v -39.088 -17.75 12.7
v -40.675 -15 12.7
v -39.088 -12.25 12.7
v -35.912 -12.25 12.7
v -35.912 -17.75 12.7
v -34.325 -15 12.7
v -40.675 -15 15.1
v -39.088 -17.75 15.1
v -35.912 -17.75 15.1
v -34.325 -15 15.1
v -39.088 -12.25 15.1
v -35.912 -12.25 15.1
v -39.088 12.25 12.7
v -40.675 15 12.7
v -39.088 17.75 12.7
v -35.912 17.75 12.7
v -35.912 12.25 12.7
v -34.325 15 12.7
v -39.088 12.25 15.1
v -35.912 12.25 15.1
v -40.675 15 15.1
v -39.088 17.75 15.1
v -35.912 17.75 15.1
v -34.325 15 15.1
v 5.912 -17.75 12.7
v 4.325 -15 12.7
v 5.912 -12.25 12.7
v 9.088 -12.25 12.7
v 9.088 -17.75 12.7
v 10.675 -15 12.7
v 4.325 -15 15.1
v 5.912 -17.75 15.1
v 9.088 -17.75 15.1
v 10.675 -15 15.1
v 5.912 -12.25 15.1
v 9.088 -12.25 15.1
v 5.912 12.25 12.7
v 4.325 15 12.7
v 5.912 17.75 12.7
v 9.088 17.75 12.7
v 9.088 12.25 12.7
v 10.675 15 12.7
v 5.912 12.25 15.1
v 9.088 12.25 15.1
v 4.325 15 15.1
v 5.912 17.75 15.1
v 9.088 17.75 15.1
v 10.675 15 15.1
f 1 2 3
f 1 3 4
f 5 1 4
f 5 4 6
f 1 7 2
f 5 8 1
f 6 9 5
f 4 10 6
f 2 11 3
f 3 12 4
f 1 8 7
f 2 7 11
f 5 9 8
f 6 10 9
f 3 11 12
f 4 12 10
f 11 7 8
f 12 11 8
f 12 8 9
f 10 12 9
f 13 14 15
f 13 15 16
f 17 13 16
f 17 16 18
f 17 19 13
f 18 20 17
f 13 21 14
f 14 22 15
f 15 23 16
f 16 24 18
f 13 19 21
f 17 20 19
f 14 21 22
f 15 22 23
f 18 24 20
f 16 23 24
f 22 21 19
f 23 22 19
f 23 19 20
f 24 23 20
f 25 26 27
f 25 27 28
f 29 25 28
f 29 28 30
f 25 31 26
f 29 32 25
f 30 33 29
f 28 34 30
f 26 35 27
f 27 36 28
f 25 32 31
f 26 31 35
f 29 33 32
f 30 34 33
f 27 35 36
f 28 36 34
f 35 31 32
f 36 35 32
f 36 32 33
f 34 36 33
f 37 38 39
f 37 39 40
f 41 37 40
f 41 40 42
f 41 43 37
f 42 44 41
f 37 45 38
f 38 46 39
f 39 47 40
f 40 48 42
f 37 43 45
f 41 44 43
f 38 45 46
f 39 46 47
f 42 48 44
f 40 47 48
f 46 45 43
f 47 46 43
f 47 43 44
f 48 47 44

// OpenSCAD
$fn = 50;

difference() {
	union() {
		translate(v = [-37.5, -15, 12.7]) {
			linear_extrude(height = 2.4) {
				polygon(points = [[3.1754264805429417, 0.0], [1.5877132402714713, 2.75], [-1.5877132402714702, 2.7500000000000004], [-3.1754264805429417, 3.888775875324659e-16], [-1.5877132402714722, -2.7499999999999996], [1.5877132402714687, -2.7500000000000013]]);
			}
		}
		translate(v = [-37.5, 15, 12.7]) {
			linear_extrude(height = 2.4) {
				polygon(points = [[3.1754264805429417, 0.0], [1.5877132402714713, 2.75], [-1.5877132402714702, 2.7500000000000004], [-3.1754264805429417, 3.888775875324659e-16], [-1.5877132402714722, -2.7499999999999996], [1.5877132402714687, -2.7500000000000013]]);
			}
		}
		translate(v = [7.5, -15, 12.7]) {
			linear_extrude(height = 2.4) {
				polygon(points = [[3.1754264805429417, 0.0], [1.5877132402714713, 2.75], [-1.5877132402714702, 2.7500000000000004], [-3.1754264805429417, 3.888775875324659e-16], [-1.5877132402714722, -2.7499999999999996], [1.5877132402714687, -2.7500000000000013]]);
			}
		}
		translate(v = [7.5, 15, 12.7]) {
			linear_extrude(height = 2.4) {
				polygon(points = [[3.1754264805429417, 0.0], [1.5877132402714713, 2.75], [-1.5877132402714702, 2.7500000000000004], [-3.1754264805429417, 3.888775875324659e-16], [-1.5877132402714722, -2.7499999999999996], [1.5877132402714687, -2.7500000000000013]]);
			}
		}
	}
	union();
}
